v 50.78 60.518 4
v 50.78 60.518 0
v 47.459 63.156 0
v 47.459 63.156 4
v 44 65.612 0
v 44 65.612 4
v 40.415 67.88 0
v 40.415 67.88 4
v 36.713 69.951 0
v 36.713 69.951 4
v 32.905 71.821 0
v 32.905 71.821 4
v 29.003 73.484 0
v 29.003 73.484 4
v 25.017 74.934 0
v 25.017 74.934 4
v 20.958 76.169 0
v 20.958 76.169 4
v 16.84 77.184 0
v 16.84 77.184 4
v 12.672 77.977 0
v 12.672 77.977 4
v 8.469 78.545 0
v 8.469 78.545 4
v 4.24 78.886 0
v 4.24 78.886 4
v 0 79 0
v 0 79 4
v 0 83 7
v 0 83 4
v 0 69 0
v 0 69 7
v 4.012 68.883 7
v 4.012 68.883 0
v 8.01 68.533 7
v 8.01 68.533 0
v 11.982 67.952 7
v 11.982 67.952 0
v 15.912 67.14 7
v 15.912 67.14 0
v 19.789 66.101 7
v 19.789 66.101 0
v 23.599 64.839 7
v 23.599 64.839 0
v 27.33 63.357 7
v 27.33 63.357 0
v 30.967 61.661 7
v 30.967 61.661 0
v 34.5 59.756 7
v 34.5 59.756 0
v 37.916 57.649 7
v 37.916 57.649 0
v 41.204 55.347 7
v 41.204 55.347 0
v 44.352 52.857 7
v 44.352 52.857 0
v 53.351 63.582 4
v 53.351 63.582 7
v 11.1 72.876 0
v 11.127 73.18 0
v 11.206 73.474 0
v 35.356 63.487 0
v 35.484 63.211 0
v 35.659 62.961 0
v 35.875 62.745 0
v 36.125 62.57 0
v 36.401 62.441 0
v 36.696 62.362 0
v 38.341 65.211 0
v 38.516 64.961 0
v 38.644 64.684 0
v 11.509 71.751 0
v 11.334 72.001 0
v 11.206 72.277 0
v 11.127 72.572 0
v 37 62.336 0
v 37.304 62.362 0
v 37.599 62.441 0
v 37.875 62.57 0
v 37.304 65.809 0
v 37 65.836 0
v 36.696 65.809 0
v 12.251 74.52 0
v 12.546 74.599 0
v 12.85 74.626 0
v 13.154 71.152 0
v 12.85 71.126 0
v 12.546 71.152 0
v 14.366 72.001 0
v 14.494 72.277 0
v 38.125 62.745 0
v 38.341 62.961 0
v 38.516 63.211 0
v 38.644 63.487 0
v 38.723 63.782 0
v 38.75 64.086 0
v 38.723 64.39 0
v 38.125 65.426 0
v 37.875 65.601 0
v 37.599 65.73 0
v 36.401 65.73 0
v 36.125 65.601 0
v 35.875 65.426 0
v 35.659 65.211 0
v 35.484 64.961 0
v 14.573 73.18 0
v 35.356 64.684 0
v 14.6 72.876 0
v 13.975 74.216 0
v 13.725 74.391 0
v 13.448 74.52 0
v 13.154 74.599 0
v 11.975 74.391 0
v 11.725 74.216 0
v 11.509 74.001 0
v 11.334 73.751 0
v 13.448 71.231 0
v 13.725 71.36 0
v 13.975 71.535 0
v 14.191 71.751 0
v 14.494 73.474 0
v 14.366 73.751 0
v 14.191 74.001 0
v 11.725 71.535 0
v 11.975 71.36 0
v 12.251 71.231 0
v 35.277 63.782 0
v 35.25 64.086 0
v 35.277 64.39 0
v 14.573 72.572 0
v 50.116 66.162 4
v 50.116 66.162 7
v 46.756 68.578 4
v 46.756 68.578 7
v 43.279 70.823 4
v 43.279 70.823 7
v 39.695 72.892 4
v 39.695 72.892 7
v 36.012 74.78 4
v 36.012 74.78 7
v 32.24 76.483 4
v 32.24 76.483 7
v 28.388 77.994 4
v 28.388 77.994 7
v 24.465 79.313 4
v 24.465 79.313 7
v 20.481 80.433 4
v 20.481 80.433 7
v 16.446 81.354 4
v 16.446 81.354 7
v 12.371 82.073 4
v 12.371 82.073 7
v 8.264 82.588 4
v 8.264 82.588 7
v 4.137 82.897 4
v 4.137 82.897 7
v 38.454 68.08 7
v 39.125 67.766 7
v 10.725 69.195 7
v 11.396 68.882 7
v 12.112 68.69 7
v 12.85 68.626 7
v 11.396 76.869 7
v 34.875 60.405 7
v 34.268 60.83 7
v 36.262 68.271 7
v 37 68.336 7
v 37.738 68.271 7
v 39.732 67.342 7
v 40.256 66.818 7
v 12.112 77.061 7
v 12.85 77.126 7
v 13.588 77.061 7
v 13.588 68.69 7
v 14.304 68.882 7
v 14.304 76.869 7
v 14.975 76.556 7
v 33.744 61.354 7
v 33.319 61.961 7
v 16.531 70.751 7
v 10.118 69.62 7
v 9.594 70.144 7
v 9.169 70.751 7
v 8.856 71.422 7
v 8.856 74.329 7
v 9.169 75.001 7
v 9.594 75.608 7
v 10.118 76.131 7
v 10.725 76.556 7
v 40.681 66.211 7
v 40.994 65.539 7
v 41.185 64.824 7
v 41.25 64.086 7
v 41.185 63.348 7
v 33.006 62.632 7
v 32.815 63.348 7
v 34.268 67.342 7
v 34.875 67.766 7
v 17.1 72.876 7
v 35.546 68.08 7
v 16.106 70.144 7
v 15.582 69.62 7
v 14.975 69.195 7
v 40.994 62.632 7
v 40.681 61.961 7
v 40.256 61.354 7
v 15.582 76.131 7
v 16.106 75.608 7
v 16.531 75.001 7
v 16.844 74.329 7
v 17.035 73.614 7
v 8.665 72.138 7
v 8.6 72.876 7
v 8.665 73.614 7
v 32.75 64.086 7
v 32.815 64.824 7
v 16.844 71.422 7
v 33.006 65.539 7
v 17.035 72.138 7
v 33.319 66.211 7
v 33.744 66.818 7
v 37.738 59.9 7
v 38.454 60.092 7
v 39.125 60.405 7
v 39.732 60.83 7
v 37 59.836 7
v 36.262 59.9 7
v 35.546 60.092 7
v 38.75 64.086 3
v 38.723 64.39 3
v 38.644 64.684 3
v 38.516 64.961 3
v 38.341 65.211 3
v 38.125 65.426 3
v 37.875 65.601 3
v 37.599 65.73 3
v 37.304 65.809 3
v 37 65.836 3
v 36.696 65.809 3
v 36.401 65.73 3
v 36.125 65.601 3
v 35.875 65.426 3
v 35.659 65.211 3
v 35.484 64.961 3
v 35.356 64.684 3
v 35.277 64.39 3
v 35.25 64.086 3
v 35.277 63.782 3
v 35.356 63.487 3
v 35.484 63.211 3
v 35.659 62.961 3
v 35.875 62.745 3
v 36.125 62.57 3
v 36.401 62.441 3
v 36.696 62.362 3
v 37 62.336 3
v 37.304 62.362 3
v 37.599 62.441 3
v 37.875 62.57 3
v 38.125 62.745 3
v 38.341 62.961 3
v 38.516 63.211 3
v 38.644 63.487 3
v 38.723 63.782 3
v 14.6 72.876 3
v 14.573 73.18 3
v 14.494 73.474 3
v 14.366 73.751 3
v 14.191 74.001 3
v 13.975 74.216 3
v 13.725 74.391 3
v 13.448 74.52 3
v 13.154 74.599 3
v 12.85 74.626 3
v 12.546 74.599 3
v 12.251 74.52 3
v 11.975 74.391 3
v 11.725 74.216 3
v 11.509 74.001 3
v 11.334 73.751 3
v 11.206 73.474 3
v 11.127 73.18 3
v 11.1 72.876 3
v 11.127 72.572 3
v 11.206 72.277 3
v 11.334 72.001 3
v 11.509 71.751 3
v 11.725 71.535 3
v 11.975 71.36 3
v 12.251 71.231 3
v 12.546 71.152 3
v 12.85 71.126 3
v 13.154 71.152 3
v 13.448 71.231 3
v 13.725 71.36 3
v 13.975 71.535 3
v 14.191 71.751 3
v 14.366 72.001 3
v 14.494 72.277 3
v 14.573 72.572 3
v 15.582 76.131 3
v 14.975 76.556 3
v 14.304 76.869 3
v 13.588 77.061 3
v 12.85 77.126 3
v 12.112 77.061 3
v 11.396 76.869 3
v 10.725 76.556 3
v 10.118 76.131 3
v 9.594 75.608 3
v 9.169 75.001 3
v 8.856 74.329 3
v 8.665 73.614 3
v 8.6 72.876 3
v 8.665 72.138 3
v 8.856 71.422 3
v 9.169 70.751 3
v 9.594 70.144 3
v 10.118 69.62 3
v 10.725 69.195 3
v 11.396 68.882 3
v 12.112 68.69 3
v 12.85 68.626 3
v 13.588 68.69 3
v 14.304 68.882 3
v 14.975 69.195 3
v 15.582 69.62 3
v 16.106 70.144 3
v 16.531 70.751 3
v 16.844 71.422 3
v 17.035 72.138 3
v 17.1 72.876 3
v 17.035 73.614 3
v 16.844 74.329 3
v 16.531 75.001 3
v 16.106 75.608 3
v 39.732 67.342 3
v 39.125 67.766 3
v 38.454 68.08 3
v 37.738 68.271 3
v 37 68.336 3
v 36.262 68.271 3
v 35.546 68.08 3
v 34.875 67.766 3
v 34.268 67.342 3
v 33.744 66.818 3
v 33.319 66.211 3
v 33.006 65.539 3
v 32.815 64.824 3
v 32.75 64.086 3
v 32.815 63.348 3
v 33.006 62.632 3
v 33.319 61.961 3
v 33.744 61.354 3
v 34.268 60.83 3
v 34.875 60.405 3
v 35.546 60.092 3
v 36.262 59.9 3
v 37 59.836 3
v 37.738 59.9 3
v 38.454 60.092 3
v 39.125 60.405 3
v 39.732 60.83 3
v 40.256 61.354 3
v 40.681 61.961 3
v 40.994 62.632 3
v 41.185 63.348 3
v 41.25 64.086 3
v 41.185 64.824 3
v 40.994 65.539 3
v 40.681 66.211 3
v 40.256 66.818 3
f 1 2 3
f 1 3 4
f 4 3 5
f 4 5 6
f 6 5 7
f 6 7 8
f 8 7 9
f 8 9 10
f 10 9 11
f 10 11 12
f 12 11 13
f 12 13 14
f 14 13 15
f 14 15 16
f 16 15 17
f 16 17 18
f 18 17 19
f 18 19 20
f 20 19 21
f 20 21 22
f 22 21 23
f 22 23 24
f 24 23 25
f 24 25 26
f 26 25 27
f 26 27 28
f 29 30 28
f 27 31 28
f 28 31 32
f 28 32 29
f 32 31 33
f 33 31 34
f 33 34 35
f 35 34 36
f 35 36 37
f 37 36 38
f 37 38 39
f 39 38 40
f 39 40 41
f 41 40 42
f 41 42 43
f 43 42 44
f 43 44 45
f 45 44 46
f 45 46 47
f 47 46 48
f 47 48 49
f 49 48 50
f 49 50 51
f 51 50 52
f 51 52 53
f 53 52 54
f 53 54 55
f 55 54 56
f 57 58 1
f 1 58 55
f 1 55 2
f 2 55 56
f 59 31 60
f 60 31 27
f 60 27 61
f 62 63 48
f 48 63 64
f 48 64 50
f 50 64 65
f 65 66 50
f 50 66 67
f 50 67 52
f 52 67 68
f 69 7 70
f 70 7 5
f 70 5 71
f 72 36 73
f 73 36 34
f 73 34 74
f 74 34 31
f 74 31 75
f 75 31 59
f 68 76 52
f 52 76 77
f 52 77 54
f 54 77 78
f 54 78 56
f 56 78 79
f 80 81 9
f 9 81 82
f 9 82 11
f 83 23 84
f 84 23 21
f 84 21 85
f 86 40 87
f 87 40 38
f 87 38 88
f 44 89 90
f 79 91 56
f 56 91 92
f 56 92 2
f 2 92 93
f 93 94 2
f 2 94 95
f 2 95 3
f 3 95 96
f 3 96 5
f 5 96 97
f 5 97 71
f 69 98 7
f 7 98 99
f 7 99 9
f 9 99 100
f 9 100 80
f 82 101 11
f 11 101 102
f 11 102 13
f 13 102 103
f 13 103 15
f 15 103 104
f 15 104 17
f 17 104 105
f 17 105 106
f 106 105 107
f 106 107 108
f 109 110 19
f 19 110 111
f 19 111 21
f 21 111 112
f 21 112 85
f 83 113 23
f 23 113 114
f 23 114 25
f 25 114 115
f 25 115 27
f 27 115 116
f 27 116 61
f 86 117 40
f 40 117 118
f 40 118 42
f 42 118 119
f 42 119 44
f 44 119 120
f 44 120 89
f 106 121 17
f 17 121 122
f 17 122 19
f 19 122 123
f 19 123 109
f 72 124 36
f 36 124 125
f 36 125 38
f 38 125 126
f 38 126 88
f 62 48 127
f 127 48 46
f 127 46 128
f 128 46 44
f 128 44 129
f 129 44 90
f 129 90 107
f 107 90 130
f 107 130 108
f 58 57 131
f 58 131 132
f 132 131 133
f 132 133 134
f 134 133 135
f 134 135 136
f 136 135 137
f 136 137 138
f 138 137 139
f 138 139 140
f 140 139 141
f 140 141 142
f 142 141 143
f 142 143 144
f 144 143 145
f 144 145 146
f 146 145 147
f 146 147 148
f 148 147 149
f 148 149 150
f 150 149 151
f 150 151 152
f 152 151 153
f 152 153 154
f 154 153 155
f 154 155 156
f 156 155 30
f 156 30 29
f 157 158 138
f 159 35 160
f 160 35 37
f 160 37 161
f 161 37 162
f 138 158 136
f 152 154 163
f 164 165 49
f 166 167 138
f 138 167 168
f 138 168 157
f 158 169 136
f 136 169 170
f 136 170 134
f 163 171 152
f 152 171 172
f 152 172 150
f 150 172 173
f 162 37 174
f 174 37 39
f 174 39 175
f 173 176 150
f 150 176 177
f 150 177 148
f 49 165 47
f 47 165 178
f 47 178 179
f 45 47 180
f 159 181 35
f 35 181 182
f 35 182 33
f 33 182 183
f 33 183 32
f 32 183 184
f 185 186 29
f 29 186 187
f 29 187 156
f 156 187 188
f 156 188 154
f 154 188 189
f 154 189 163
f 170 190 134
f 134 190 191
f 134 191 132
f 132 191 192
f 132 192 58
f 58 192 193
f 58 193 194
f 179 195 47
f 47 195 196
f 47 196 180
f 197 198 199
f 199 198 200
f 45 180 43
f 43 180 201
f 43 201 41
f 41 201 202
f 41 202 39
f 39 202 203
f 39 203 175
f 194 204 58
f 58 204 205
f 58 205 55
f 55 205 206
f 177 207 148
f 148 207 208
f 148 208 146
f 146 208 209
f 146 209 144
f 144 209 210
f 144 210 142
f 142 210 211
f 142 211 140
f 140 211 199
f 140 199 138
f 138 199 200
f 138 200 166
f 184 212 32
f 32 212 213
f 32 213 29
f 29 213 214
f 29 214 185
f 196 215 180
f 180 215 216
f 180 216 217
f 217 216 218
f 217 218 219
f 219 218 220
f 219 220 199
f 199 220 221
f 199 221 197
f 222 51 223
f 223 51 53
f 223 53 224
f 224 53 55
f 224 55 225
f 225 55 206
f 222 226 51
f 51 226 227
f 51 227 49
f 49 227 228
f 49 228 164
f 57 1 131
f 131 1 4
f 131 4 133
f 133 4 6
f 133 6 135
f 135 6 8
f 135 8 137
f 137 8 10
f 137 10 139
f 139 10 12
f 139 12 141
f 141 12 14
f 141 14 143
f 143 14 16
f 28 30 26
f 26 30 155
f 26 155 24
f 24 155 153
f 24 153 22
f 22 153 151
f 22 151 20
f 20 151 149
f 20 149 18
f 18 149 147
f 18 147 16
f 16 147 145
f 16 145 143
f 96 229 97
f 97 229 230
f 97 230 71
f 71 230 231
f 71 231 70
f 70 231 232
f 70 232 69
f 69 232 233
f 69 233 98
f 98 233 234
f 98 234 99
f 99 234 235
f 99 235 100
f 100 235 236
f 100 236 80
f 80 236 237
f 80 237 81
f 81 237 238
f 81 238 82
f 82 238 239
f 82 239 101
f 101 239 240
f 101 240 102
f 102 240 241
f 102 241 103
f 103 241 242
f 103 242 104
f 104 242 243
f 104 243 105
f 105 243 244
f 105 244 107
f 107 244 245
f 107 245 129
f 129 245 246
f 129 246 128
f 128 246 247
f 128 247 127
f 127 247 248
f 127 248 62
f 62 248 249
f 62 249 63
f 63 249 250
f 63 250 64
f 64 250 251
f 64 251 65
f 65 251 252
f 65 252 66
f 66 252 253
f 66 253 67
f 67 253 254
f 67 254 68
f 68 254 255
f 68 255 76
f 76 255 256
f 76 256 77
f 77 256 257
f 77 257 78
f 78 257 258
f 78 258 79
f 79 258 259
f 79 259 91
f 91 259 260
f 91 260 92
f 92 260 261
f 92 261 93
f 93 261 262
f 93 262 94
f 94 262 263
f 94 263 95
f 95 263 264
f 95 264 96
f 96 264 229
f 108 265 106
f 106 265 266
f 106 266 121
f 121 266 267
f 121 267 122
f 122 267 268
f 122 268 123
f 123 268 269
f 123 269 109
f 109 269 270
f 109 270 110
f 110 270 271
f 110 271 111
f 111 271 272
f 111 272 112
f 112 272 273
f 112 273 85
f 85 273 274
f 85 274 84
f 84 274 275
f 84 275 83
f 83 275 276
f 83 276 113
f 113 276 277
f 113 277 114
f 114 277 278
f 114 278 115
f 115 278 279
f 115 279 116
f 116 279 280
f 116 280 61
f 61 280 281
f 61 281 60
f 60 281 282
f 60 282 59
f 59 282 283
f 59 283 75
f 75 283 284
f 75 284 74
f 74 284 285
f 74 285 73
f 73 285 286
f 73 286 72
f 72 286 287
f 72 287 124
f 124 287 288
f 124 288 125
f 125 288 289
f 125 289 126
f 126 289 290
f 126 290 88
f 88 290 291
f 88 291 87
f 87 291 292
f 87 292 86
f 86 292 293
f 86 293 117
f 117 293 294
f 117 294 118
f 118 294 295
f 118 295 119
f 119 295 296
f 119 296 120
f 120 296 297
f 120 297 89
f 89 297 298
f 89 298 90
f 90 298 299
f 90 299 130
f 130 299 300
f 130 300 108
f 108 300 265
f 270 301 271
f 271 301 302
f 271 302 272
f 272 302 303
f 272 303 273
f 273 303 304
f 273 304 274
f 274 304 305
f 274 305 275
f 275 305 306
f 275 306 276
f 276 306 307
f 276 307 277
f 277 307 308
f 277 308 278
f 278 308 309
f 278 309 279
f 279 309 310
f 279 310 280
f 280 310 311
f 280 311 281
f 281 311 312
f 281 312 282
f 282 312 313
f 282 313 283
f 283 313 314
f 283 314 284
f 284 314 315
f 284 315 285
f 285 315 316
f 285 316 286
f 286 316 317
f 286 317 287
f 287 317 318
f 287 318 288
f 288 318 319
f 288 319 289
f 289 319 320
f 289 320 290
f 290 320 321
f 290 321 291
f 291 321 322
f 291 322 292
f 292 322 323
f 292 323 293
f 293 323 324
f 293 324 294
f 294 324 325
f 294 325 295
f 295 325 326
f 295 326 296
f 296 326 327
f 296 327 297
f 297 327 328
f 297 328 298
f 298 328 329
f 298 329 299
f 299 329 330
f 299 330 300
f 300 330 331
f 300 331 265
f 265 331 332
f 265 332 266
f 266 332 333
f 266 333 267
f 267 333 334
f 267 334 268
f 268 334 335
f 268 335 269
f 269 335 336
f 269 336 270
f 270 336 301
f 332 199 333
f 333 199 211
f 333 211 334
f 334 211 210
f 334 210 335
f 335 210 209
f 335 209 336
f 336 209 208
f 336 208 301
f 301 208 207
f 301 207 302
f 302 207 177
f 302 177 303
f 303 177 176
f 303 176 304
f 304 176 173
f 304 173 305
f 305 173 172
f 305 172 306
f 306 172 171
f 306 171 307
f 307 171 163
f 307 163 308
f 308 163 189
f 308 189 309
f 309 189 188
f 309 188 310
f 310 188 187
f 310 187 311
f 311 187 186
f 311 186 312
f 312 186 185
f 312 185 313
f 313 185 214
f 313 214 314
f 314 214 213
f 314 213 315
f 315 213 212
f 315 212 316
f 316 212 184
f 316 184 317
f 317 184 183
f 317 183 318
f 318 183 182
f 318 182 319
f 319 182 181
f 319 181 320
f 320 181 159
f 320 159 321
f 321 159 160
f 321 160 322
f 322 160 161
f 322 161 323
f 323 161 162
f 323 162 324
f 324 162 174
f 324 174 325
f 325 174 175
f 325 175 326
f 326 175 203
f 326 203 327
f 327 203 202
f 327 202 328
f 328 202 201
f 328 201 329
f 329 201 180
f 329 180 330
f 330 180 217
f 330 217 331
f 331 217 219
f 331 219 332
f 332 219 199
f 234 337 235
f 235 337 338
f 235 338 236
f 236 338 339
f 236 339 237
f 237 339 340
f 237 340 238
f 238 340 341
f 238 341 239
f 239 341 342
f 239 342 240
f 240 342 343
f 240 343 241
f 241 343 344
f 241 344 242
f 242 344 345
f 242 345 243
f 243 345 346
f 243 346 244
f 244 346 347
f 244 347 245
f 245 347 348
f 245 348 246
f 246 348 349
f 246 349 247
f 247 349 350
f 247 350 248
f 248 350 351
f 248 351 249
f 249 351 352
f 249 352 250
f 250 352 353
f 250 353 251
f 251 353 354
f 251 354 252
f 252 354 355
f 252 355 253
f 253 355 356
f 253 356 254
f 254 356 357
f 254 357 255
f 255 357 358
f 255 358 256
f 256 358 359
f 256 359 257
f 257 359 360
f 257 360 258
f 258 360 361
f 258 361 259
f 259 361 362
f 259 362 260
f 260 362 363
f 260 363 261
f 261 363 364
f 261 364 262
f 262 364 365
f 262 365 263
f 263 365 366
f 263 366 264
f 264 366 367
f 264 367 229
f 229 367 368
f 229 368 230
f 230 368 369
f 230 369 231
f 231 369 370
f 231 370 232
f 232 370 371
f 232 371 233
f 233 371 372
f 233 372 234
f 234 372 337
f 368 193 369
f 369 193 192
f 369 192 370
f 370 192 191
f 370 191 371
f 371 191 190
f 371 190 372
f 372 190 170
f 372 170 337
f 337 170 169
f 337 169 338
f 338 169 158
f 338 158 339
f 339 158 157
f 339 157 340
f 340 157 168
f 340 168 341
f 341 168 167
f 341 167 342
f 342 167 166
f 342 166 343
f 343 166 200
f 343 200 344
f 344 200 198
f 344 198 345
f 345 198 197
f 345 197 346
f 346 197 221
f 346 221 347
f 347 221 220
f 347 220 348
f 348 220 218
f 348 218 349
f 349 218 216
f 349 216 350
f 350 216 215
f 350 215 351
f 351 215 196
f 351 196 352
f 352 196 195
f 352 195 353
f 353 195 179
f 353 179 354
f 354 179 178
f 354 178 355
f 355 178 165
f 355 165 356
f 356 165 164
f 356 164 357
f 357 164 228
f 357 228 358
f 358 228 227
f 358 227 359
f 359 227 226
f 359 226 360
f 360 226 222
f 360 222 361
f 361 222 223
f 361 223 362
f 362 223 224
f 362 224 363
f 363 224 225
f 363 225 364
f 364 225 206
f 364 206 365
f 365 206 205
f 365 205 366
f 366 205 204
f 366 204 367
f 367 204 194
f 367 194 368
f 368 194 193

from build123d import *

# Parameters (mm, degrees)
BOSS_EXTRUDE1_DEPTH = 4
BOSS_EXTRUDE2_DEPTH = 3
SKETCH4_R           = 1.75
CUT_EXTRUDE1_DEPTH  = 8
SKETCH5_R           = 4.25
CUT_EXTRUDE2_DEPTH  = 4


with BuildPart() as part:
    # Sketch1 → Boss-Extrude1 (new body)
    with BuildSketch(Plane.XY):
        with BuildLine():
            Line((0, 79), (0, 69))
            ThreePointArc((0, 69), (23.599389889, 64.838790834), (44.352345068, 52.857066575))
            Line((44.352345068, 52.857066575), (50.780221165, 60.517511006))
            ThreePointArc((50.780221165, 60.517511006), (27.019591323, 74.235717042), (0, 79))
        make_face()
    extrude(amount=BOSS_EXTRUDE1_DEPTH)

    # Sketch2 → Boss-Extrude2 (add)
    with BuildSketch(Plane.XY.offset(4)):
        with BuildLine():
            Line((44.352345068, 52.857066575), (53.351371604, 63.581688779))
            ThreePointArc((53.351371604, 63.581688779), (28.387671896, 77.994487525), (0, 83))
            Line((0, 83), (0, 69))
            ThreePointArc((0, 69), (23.599389889, 64.838790834), (44.352345068, 52.857066575))
        make_face()
    extrude(amount=BOSS_EXTRUDE2_DEPTH)

    # Sketch4 → Cut-Extrude1 (cut, through all)
    with BuildSketch(Plane.XY.offset(7)):
        with Locations((12.849965147, 72.875773723)):
            Circle(SKETCH4_R)
        with Locations((37, 64.08587988)):
            Circle(SKETCH4_R)
    extrude(amount=-CUT_EXTRUDE1_DEPTH, mode=Mode.SUBTRACT)

    # Sketch5 → Cut-Extrude2 (cut)
    with BuildSketch(Plane(origin=(0, 0, 7), x_dir=(-1, 0, 0), z_dir=(0, 0, -1))):
        with Locations((-37, 64.08587988)):
            Circle(SKETCH5_R)
        with Locations((-12.849965147, 72.875773723)):
            Circle(SKETCH5_R)
    extrude(amount=CUT_EXTRUDE2_DEPTH, mode=Mode.SUBTRACT)


solid = part.part
